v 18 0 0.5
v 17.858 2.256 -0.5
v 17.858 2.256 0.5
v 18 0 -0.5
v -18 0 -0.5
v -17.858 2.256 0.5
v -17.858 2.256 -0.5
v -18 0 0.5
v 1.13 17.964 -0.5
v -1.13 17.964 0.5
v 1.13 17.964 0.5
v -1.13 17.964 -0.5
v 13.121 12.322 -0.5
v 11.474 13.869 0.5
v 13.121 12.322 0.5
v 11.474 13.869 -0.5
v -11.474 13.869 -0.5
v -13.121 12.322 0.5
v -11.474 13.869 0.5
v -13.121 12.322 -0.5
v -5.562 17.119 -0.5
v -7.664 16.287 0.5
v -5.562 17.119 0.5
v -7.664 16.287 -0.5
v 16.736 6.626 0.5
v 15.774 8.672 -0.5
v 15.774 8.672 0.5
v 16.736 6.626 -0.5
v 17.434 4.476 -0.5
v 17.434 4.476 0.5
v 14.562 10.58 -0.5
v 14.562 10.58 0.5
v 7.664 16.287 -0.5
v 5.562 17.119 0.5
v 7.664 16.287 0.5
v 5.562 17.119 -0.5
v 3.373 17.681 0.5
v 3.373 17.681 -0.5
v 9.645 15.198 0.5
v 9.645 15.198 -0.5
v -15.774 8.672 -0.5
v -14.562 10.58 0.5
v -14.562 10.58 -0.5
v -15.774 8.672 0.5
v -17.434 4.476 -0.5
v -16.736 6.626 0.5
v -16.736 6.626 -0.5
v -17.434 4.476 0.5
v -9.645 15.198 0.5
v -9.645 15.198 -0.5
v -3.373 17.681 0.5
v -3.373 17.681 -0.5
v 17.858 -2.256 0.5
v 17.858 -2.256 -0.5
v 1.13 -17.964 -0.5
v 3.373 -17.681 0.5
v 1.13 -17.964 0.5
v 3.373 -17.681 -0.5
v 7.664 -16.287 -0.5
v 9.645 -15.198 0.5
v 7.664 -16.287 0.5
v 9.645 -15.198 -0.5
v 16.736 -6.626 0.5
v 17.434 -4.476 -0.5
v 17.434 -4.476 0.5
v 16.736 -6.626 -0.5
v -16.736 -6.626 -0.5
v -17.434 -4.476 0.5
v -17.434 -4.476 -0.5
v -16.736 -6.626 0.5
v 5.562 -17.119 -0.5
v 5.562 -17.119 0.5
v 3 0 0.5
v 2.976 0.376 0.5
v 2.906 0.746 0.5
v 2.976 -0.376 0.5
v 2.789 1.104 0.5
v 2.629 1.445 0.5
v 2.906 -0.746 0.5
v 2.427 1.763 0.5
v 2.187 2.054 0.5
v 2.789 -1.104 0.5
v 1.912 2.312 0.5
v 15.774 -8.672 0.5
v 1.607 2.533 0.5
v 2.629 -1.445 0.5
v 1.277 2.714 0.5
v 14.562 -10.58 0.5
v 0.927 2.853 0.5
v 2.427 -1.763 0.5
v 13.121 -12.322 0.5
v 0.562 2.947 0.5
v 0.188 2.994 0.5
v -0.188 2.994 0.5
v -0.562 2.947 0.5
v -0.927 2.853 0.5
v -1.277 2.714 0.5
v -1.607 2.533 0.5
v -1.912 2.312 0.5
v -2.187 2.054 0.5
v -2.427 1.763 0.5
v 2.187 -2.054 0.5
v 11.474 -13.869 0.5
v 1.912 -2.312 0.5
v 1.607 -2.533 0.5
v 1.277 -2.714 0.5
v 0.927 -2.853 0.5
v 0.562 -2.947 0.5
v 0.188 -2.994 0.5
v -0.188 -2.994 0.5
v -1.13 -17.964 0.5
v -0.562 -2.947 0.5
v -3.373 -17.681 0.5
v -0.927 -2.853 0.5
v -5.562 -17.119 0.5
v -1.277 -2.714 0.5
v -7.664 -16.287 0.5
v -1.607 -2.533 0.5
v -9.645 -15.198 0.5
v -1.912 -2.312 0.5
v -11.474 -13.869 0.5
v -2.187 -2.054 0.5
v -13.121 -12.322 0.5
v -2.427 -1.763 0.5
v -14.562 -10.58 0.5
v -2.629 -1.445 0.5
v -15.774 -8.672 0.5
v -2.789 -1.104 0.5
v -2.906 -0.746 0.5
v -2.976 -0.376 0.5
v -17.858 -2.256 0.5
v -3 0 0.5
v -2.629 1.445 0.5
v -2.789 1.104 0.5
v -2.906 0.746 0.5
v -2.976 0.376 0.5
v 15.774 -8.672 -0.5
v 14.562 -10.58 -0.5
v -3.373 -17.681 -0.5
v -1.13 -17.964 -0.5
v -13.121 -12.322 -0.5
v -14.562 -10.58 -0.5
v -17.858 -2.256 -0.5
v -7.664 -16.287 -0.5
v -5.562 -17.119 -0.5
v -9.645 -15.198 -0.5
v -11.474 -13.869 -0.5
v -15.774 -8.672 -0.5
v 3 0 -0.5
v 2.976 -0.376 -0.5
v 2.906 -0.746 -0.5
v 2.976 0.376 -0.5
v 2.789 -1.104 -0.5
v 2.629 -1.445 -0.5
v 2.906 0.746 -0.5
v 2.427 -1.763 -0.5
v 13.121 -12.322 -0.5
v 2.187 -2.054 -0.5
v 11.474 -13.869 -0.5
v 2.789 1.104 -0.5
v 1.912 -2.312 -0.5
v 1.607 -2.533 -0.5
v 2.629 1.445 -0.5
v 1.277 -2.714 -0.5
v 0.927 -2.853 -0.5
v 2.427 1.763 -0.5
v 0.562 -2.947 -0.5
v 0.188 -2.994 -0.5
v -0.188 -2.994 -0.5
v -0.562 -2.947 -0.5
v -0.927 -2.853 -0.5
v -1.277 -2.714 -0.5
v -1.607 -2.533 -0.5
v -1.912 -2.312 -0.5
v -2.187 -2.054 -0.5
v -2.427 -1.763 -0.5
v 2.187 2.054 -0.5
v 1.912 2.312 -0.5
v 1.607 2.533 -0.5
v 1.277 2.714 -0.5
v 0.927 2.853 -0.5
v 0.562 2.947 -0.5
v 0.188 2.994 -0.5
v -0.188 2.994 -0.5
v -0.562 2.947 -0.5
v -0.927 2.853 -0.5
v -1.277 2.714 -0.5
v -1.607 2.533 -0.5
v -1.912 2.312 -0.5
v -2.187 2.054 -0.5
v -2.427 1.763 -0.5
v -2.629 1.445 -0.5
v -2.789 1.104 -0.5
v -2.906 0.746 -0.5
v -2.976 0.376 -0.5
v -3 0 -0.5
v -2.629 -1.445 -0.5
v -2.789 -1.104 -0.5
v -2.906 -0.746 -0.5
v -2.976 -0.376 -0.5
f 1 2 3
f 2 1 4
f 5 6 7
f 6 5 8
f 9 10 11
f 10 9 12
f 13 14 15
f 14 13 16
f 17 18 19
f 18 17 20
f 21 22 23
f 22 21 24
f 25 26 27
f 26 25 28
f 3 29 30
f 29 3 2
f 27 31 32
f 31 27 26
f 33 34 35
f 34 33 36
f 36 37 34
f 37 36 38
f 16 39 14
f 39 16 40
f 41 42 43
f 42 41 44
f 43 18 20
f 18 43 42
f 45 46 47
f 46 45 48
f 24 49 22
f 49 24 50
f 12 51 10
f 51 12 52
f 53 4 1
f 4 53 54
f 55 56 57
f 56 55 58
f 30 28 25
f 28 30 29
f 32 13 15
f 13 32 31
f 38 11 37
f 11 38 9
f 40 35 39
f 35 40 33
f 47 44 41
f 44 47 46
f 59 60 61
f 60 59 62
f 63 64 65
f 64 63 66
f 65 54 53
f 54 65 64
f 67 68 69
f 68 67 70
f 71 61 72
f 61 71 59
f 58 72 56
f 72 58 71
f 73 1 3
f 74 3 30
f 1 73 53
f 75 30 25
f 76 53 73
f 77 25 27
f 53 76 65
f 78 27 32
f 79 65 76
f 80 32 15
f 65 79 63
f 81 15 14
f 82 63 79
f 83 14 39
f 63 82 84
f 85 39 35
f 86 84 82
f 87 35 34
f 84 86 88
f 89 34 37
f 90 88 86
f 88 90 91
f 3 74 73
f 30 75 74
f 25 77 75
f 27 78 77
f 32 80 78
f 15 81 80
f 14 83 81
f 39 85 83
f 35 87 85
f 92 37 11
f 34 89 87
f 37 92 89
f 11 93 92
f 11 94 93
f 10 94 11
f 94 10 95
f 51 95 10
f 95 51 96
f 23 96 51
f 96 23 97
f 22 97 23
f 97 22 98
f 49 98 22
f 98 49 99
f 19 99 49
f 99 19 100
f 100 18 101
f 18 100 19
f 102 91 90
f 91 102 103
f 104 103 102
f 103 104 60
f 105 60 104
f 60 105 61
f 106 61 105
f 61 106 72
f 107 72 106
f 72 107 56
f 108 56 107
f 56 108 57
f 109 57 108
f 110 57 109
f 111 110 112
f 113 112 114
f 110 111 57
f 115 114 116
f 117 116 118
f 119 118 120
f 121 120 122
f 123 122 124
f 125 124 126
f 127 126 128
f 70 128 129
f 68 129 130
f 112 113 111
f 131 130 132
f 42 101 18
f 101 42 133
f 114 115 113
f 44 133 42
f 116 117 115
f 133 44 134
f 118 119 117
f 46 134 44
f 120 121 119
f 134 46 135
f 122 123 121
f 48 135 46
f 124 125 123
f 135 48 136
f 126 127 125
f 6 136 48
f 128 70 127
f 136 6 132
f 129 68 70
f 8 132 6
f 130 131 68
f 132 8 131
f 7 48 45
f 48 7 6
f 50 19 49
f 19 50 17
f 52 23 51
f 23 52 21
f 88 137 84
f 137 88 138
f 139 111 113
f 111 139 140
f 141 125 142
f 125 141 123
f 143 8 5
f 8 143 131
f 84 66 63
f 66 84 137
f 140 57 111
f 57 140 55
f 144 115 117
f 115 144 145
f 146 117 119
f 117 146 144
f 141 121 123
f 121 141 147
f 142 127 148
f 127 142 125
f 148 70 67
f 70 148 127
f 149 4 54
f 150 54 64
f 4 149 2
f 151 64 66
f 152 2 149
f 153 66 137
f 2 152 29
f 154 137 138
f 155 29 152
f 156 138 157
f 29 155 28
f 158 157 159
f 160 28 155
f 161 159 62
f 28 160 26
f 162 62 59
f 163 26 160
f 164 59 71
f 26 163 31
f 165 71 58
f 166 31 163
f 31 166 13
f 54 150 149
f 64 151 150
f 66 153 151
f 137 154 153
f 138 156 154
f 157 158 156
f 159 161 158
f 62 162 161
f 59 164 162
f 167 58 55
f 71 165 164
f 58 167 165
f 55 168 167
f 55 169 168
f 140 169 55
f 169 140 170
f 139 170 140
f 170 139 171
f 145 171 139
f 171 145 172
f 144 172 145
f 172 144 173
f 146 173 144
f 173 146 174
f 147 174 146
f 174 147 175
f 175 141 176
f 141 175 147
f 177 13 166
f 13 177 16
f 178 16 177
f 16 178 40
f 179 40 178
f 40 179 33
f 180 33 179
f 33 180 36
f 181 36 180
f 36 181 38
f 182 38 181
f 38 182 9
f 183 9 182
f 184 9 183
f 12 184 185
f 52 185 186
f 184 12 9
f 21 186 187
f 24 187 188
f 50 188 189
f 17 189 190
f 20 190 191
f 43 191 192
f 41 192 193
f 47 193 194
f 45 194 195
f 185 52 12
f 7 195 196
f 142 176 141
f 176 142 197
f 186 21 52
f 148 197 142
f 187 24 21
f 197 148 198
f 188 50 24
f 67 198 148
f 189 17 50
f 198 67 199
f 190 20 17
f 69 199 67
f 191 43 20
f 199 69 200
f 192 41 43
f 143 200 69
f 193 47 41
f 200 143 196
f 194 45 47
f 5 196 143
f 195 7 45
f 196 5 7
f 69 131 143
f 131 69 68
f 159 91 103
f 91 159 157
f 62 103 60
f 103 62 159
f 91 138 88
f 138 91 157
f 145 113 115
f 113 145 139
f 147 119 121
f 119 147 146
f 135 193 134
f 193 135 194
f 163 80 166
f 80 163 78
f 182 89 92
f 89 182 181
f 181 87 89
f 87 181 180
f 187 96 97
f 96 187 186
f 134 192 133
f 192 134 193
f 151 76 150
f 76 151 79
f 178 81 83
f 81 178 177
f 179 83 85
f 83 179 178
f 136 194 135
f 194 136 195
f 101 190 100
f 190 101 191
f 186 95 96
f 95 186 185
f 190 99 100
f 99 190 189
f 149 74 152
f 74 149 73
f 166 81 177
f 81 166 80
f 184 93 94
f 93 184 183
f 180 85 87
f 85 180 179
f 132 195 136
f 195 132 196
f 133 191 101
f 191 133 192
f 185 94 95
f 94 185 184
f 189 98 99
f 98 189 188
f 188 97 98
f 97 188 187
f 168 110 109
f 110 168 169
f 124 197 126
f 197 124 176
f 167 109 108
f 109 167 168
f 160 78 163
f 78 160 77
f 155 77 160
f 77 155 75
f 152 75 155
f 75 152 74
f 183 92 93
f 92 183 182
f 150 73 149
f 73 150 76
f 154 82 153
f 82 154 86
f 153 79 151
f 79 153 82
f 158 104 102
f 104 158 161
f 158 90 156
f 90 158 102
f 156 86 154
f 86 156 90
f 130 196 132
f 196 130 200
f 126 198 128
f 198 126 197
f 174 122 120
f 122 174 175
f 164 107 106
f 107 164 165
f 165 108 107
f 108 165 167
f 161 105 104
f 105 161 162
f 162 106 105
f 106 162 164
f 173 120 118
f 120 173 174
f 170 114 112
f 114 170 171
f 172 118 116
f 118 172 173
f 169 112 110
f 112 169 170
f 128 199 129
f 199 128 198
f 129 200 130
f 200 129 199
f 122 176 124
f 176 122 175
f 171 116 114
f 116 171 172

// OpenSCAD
$fn = 50;


difference() {
	union() {
		translate(v = [0, 0, -0.5000000000]) {
			cylinder(h = 1, r = 18.0000000000);
		}
	}
	union() {
		translate(v = [0, 0, -100.0000000000]) {
			cylinder(h = 200, r = 3.0000000000);
		}
	}
}
